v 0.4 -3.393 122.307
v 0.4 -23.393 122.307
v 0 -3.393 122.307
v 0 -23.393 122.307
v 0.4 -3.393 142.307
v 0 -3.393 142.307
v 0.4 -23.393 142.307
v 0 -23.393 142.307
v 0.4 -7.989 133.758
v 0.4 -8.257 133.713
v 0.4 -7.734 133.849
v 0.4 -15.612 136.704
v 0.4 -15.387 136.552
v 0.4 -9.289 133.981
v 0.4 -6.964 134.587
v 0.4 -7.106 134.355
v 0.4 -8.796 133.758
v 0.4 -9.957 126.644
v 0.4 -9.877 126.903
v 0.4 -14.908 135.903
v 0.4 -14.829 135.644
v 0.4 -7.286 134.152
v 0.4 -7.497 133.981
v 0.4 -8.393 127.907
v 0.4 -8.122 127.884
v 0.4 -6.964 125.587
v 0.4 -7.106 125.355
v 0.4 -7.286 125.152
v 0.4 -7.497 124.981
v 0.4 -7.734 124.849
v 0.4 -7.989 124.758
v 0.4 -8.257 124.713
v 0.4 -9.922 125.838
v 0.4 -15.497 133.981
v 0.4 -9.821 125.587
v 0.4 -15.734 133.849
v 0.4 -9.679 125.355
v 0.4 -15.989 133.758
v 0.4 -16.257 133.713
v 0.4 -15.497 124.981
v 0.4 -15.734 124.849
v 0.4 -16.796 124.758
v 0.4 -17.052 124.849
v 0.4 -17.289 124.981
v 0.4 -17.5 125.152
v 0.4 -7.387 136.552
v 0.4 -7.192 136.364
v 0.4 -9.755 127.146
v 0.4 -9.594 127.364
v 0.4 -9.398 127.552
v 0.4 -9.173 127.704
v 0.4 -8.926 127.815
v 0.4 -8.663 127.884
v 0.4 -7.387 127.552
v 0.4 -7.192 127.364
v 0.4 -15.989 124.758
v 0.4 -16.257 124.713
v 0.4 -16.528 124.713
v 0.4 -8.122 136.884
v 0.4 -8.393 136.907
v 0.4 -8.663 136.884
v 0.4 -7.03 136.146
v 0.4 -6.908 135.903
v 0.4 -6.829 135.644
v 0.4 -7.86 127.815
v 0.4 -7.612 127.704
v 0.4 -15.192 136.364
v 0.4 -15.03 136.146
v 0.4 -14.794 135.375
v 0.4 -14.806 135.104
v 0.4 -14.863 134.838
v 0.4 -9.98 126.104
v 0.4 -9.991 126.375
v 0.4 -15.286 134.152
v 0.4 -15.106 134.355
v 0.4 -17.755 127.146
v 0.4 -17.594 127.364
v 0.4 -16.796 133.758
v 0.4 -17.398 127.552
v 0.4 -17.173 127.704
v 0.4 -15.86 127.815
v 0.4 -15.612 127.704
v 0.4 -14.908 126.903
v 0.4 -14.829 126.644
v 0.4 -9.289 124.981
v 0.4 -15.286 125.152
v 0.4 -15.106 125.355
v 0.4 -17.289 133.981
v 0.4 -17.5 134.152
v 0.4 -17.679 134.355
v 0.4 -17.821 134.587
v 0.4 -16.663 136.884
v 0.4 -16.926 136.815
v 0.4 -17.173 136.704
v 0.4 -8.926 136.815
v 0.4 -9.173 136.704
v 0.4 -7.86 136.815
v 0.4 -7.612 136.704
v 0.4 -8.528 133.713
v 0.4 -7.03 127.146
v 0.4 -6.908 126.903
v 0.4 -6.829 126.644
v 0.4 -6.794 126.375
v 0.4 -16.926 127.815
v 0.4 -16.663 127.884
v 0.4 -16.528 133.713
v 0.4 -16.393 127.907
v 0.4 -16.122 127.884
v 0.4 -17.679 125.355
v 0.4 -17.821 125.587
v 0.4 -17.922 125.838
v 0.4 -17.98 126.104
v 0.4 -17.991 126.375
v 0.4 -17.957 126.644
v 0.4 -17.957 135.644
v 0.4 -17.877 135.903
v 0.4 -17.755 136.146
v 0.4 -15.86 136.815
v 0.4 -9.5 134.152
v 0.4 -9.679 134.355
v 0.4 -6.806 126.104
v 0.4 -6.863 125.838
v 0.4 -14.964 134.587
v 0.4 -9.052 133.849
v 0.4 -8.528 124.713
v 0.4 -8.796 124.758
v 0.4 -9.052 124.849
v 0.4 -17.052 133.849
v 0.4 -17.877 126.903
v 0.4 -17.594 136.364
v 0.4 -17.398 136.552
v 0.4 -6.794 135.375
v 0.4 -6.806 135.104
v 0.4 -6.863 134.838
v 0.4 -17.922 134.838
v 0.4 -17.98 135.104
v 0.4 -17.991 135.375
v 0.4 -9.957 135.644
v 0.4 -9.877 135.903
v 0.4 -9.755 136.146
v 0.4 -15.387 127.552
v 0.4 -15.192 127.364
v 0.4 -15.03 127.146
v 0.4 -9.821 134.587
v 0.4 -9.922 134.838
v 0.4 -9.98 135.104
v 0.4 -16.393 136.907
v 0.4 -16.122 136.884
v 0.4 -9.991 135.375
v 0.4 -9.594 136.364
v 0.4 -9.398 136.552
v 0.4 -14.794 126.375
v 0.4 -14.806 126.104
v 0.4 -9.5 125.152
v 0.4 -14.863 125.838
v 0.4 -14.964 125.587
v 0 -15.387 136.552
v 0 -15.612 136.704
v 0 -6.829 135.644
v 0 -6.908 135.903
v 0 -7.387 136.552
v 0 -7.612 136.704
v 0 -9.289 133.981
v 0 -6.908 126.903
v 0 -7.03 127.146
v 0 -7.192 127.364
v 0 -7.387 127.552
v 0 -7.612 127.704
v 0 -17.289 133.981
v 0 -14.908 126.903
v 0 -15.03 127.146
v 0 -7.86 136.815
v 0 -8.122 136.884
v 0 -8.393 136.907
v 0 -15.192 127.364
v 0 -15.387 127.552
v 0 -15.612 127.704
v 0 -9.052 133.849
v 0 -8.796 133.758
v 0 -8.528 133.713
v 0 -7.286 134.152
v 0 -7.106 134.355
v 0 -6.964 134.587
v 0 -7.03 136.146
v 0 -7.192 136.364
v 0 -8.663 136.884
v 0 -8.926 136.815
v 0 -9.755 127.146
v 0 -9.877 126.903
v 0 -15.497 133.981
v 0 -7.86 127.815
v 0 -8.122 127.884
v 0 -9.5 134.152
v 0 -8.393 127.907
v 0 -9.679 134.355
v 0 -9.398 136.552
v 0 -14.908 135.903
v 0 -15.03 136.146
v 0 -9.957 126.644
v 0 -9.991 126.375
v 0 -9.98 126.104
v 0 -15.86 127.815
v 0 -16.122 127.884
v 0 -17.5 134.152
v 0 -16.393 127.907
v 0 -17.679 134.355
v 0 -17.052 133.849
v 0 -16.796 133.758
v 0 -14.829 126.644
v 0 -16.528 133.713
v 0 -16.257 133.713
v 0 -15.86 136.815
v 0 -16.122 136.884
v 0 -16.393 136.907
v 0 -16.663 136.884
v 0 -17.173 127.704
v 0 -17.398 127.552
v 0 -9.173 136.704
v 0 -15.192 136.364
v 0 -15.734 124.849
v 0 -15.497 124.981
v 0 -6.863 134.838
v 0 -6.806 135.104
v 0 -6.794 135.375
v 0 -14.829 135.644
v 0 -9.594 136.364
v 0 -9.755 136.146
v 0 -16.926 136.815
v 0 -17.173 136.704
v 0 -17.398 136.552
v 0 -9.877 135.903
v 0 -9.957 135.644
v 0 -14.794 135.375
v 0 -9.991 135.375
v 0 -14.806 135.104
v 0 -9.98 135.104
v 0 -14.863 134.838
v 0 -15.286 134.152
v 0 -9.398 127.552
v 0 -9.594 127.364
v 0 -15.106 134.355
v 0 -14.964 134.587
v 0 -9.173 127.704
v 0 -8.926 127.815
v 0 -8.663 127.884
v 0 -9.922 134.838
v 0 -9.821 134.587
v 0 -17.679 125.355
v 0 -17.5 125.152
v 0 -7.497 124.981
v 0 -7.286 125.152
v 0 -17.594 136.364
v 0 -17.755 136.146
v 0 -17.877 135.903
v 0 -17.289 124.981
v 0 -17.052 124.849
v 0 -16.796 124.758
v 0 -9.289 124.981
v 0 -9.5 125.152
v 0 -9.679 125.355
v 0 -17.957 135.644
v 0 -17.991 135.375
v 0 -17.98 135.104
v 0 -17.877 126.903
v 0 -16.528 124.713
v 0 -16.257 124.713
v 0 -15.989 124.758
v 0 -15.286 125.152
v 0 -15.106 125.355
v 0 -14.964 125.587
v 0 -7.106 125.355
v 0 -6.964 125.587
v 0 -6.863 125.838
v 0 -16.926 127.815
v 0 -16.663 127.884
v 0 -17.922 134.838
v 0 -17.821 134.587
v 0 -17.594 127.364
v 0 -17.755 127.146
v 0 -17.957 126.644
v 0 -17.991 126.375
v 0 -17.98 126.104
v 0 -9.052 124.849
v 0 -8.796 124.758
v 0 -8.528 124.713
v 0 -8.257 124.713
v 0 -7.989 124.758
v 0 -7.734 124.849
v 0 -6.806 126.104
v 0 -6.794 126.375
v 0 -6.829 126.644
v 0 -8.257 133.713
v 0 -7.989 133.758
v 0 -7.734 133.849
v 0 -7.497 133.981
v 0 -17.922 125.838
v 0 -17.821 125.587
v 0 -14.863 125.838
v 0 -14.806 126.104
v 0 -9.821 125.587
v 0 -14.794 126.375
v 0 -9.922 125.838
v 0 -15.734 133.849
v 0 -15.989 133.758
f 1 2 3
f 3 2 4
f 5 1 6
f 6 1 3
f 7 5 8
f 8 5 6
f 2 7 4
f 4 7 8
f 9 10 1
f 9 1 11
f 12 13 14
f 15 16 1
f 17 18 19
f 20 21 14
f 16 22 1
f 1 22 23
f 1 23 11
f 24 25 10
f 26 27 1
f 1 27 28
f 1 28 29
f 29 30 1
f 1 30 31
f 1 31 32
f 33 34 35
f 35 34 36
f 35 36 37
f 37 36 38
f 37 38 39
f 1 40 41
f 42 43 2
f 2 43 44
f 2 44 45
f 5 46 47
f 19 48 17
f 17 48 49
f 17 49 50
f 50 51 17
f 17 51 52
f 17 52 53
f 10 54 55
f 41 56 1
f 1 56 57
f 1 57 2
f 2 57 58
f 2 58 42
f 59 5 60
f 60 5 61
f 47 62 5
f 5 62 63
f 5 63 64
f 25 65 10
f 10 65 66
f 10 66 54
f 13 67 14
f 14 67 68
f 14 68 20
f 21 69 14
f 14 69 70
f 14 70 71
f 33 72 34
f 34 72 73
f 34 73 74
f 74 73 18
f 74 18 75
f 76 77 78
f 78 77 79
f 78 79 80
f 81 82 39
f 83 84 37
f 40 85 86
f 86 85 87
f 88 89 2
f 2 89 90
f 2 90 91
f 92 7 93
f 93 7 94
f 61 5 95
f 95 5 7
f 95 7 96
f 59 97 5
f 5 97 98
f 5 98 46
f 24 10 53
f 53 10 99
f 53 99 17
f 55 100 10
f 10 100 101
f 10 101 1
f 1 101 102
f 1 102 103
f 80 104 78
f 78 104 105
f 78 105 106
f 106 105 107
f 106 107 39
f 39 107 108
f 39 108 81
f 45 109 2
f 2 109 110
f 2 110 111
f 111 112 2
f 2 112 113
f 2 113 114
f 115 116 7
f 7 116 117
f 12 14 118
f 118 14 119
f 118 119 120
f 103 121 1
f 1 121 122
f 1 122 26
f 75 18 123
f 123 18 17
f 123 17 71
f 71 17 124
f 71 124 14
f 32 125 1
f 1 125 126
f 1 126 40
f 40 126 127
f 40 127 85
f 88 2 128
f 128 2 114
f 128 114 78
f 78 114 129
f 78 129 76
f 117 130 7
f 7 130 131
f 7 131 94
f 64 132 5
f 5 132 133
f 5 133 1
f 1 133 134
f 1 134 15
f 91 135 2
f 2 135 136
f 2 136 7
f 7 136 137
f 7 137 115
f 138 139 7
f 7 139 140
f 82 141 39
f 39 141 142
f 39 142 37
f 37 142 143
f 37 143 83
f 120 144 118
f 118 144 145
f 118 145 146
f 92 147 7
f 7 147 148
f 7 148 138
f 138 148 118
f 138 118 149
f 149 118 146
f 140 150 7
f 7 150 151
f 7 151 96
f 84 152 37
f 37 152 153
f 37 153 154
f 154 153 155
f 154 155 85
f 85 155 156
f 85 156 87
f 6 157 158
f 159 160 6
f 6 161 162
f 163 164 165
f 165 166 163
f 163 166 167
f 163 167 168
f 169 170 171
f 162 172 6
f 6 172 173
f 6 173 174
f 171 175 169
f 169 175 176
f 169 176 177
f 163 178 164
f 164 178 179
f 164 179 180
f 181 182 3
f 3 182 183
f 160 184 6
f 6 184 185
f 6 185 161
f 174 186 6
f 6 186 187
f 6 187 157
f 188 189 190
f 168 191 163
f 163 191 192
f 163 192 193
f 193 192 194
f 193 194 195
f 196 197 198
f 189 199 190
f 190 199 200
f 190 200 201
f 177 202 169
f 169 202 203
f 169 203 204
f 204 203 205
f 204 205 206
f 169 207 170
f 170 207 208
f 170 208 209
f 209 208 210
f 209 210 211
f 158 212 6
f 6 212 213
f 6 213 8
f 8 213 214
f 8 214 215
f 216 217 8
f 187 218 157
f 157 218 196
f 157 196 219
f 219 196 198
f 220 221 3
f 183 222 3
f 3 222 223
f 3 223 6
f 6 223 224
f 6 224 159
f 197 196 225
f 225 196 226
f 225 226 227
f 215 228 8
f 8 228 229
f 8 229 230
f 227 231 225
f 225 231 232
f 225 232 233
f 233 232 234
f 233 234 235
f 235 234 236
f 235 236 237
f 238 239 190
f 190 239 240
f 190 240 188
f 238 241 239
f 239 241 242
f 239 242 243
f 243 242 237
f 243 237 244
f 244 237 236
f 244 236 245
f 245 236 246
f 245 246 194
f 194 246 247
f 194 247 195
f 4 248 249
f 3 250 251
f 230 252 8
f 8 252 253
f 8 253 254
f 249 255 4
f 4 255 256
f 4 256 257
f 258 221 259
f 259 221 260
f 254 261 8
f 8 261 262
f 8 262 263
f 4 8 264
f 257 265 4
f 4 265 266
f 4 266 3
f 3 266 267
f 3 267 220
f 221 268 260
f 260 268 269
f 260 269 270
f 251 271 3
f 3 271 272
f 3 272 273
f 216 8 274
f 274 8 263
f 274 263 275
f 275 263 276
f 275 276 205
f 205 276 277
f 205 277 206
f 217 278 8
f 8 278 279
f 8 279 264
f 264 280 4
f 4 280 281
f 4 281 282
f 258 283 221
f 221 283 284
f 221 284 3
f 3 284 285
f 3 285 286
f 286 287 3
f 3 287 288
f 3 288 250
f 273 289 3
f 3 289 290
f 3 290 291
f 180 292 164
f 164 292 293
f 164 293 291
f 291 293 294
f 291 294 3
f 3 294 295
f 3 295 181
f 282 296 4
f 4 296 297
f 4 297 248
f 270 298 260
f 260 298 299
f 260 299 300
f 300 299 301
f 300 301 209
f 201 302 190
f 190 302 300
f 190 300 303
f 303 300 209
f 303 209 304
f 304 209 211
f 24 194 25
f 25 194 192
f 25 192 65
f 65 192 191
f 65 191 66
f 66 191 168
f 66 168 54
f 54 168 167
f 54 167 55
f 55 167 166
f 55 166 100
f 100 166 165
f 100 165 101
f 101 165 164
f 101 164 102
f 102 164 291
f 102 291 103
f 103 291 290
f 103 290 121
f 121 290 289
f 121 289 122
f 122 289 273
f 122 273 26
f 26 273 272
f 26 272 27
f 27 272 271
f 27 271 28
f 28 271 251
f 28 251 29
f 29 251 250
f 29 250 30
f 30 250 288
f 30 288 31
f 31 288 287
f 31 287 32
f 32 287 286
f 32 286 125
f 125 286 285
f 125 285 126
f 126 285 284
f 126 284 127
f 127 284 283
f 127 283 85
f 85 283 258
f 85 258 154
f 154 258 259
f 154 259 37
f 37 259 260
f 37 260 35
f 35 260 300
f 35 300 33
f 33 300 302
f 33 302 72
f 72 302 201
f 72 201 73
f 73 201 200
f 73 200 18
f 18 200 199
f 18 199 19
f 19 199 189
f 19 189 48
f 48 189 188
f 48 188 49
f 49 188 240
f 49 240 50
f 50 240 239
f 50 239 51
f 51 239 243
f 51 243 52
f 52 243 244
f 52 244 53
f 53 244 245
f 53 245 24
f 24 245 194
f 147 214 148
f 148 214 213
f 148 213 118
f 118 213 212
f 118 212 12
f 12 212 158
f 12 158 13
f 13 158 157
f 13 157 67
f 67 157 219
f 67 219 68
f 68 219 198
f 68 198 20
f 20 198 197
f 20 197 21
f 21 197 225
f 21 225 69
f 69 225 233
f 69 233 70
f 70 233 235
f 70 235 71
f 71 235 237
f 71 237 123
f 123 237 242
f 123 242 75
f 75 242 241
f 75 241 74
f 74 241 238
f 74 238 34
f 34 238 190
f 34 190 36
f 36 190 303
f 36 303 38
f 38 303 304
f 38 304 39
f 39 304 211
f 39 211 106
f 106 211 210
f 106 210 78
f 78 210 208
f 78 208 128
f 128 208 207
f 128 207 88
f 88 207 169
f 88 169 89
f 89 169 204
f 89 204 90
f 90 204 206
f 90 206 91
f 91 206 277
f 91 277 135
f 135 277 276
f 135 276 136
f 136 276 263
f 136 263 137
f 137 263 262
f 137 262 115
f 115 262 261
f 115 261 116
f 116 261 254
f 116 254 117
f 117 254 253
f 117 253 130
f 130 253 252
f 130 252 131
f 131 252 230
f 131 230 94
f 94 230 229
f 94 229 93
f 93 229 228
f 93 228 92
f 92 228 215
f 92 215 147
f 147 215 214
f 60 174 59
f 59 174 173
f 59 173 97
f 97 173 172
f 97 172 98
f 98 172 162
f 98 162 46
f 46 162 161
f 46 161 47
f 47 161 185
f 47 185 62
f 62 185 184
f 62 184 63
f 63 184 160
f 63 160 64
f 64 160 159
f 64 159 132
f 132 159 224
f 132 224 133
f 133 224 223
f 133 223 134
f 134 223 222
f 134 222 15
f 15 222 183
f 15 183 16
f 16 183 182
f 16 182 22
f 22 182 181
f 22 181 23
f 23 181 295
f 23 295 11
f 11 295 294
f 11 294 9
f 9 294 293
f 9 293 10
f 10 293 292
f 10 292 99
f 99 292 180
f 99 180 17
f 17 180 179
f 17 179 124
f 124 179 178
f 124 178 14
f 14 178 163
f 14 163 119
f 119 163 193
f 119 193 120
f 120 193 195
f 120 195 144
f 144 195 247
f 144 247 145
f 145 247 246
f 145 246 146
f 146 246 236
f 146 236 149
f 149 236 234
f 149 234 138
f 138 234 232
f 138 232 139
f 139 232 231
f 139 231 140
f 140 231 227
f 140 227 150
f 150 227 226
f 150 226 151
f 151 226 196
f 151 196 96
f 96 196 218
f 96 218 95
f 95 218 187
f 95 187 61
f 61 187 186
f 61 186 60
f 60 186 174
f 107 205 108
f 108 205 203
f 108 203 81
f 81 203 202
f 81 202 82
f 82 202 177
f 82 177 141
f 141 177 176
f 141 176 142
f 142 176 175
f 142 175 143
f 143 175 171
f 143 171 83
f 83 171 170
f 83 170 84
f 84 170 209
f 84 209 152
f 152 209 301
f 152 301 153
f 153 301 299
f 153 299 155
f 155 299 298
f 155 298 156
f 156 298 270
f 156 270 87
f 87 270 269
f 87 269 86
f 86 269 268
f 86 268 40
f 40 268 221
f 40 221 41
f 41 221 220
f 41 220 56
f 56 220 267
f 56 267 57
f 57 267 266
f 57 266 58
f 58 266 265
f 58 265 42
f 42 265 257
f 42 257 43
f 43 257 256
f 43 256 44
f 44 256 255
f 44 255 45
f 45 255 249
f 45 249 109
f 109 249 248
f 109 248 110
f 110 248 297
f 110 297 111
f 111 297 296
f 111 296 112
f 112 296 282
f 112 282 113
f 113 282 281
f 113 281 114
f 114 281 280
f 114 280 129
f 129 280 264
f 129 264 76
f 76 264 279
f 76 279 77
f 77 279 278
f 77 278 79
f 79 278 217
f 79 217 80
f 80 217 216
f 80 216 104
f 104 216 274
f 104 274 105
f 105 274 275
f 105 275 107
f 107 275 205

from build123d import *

# Parameters (mm, degrees)
SKETCH1_W           = 20
SKETCH1_H           = 20
BOSS_EXTRUDE1_DEPTH = 0.4
SKETCH2_R           = 1.6
CUT_EXTRUDE1_DEPTH  = 0.4


with BuildPart() as part:
    # Sketch1 → Boss-Extrude1 (new body)
    with BuildSketch(Plane(origin=(0, 0, 0), x_dir=(0, 0, -1), z_dir=(1, 0, 0))):
        with Locations((-132.306860457, -13.392602836)):
            Rectangle(SKETCH1_W, SKETCH1_H)
    extrude(amount=BOSS_EXTRUDE1_DEPTH)

    # Sketch2 → Cut-Extrude1 (cut)
    with BuildSketch(Plane.ZY):
        with Locations((126.306860457, -8.392602836)):
            Circle(SKETCH2_R)
        with Locations((126.306860457, -16.392602836)):
            Circle(SKETCH2_R)
        with Locations((135.306860457, -8.392602836)):
            Circle(SKETCH2_R)
        with Locations((135.306860457, -16.392602836)):
            Circle(SKETCH2_R)
    extrude(amount=-CUT_EXTRUDE1_DEPTH, mode=Mode.SUBTRACT)


solid = part.part
